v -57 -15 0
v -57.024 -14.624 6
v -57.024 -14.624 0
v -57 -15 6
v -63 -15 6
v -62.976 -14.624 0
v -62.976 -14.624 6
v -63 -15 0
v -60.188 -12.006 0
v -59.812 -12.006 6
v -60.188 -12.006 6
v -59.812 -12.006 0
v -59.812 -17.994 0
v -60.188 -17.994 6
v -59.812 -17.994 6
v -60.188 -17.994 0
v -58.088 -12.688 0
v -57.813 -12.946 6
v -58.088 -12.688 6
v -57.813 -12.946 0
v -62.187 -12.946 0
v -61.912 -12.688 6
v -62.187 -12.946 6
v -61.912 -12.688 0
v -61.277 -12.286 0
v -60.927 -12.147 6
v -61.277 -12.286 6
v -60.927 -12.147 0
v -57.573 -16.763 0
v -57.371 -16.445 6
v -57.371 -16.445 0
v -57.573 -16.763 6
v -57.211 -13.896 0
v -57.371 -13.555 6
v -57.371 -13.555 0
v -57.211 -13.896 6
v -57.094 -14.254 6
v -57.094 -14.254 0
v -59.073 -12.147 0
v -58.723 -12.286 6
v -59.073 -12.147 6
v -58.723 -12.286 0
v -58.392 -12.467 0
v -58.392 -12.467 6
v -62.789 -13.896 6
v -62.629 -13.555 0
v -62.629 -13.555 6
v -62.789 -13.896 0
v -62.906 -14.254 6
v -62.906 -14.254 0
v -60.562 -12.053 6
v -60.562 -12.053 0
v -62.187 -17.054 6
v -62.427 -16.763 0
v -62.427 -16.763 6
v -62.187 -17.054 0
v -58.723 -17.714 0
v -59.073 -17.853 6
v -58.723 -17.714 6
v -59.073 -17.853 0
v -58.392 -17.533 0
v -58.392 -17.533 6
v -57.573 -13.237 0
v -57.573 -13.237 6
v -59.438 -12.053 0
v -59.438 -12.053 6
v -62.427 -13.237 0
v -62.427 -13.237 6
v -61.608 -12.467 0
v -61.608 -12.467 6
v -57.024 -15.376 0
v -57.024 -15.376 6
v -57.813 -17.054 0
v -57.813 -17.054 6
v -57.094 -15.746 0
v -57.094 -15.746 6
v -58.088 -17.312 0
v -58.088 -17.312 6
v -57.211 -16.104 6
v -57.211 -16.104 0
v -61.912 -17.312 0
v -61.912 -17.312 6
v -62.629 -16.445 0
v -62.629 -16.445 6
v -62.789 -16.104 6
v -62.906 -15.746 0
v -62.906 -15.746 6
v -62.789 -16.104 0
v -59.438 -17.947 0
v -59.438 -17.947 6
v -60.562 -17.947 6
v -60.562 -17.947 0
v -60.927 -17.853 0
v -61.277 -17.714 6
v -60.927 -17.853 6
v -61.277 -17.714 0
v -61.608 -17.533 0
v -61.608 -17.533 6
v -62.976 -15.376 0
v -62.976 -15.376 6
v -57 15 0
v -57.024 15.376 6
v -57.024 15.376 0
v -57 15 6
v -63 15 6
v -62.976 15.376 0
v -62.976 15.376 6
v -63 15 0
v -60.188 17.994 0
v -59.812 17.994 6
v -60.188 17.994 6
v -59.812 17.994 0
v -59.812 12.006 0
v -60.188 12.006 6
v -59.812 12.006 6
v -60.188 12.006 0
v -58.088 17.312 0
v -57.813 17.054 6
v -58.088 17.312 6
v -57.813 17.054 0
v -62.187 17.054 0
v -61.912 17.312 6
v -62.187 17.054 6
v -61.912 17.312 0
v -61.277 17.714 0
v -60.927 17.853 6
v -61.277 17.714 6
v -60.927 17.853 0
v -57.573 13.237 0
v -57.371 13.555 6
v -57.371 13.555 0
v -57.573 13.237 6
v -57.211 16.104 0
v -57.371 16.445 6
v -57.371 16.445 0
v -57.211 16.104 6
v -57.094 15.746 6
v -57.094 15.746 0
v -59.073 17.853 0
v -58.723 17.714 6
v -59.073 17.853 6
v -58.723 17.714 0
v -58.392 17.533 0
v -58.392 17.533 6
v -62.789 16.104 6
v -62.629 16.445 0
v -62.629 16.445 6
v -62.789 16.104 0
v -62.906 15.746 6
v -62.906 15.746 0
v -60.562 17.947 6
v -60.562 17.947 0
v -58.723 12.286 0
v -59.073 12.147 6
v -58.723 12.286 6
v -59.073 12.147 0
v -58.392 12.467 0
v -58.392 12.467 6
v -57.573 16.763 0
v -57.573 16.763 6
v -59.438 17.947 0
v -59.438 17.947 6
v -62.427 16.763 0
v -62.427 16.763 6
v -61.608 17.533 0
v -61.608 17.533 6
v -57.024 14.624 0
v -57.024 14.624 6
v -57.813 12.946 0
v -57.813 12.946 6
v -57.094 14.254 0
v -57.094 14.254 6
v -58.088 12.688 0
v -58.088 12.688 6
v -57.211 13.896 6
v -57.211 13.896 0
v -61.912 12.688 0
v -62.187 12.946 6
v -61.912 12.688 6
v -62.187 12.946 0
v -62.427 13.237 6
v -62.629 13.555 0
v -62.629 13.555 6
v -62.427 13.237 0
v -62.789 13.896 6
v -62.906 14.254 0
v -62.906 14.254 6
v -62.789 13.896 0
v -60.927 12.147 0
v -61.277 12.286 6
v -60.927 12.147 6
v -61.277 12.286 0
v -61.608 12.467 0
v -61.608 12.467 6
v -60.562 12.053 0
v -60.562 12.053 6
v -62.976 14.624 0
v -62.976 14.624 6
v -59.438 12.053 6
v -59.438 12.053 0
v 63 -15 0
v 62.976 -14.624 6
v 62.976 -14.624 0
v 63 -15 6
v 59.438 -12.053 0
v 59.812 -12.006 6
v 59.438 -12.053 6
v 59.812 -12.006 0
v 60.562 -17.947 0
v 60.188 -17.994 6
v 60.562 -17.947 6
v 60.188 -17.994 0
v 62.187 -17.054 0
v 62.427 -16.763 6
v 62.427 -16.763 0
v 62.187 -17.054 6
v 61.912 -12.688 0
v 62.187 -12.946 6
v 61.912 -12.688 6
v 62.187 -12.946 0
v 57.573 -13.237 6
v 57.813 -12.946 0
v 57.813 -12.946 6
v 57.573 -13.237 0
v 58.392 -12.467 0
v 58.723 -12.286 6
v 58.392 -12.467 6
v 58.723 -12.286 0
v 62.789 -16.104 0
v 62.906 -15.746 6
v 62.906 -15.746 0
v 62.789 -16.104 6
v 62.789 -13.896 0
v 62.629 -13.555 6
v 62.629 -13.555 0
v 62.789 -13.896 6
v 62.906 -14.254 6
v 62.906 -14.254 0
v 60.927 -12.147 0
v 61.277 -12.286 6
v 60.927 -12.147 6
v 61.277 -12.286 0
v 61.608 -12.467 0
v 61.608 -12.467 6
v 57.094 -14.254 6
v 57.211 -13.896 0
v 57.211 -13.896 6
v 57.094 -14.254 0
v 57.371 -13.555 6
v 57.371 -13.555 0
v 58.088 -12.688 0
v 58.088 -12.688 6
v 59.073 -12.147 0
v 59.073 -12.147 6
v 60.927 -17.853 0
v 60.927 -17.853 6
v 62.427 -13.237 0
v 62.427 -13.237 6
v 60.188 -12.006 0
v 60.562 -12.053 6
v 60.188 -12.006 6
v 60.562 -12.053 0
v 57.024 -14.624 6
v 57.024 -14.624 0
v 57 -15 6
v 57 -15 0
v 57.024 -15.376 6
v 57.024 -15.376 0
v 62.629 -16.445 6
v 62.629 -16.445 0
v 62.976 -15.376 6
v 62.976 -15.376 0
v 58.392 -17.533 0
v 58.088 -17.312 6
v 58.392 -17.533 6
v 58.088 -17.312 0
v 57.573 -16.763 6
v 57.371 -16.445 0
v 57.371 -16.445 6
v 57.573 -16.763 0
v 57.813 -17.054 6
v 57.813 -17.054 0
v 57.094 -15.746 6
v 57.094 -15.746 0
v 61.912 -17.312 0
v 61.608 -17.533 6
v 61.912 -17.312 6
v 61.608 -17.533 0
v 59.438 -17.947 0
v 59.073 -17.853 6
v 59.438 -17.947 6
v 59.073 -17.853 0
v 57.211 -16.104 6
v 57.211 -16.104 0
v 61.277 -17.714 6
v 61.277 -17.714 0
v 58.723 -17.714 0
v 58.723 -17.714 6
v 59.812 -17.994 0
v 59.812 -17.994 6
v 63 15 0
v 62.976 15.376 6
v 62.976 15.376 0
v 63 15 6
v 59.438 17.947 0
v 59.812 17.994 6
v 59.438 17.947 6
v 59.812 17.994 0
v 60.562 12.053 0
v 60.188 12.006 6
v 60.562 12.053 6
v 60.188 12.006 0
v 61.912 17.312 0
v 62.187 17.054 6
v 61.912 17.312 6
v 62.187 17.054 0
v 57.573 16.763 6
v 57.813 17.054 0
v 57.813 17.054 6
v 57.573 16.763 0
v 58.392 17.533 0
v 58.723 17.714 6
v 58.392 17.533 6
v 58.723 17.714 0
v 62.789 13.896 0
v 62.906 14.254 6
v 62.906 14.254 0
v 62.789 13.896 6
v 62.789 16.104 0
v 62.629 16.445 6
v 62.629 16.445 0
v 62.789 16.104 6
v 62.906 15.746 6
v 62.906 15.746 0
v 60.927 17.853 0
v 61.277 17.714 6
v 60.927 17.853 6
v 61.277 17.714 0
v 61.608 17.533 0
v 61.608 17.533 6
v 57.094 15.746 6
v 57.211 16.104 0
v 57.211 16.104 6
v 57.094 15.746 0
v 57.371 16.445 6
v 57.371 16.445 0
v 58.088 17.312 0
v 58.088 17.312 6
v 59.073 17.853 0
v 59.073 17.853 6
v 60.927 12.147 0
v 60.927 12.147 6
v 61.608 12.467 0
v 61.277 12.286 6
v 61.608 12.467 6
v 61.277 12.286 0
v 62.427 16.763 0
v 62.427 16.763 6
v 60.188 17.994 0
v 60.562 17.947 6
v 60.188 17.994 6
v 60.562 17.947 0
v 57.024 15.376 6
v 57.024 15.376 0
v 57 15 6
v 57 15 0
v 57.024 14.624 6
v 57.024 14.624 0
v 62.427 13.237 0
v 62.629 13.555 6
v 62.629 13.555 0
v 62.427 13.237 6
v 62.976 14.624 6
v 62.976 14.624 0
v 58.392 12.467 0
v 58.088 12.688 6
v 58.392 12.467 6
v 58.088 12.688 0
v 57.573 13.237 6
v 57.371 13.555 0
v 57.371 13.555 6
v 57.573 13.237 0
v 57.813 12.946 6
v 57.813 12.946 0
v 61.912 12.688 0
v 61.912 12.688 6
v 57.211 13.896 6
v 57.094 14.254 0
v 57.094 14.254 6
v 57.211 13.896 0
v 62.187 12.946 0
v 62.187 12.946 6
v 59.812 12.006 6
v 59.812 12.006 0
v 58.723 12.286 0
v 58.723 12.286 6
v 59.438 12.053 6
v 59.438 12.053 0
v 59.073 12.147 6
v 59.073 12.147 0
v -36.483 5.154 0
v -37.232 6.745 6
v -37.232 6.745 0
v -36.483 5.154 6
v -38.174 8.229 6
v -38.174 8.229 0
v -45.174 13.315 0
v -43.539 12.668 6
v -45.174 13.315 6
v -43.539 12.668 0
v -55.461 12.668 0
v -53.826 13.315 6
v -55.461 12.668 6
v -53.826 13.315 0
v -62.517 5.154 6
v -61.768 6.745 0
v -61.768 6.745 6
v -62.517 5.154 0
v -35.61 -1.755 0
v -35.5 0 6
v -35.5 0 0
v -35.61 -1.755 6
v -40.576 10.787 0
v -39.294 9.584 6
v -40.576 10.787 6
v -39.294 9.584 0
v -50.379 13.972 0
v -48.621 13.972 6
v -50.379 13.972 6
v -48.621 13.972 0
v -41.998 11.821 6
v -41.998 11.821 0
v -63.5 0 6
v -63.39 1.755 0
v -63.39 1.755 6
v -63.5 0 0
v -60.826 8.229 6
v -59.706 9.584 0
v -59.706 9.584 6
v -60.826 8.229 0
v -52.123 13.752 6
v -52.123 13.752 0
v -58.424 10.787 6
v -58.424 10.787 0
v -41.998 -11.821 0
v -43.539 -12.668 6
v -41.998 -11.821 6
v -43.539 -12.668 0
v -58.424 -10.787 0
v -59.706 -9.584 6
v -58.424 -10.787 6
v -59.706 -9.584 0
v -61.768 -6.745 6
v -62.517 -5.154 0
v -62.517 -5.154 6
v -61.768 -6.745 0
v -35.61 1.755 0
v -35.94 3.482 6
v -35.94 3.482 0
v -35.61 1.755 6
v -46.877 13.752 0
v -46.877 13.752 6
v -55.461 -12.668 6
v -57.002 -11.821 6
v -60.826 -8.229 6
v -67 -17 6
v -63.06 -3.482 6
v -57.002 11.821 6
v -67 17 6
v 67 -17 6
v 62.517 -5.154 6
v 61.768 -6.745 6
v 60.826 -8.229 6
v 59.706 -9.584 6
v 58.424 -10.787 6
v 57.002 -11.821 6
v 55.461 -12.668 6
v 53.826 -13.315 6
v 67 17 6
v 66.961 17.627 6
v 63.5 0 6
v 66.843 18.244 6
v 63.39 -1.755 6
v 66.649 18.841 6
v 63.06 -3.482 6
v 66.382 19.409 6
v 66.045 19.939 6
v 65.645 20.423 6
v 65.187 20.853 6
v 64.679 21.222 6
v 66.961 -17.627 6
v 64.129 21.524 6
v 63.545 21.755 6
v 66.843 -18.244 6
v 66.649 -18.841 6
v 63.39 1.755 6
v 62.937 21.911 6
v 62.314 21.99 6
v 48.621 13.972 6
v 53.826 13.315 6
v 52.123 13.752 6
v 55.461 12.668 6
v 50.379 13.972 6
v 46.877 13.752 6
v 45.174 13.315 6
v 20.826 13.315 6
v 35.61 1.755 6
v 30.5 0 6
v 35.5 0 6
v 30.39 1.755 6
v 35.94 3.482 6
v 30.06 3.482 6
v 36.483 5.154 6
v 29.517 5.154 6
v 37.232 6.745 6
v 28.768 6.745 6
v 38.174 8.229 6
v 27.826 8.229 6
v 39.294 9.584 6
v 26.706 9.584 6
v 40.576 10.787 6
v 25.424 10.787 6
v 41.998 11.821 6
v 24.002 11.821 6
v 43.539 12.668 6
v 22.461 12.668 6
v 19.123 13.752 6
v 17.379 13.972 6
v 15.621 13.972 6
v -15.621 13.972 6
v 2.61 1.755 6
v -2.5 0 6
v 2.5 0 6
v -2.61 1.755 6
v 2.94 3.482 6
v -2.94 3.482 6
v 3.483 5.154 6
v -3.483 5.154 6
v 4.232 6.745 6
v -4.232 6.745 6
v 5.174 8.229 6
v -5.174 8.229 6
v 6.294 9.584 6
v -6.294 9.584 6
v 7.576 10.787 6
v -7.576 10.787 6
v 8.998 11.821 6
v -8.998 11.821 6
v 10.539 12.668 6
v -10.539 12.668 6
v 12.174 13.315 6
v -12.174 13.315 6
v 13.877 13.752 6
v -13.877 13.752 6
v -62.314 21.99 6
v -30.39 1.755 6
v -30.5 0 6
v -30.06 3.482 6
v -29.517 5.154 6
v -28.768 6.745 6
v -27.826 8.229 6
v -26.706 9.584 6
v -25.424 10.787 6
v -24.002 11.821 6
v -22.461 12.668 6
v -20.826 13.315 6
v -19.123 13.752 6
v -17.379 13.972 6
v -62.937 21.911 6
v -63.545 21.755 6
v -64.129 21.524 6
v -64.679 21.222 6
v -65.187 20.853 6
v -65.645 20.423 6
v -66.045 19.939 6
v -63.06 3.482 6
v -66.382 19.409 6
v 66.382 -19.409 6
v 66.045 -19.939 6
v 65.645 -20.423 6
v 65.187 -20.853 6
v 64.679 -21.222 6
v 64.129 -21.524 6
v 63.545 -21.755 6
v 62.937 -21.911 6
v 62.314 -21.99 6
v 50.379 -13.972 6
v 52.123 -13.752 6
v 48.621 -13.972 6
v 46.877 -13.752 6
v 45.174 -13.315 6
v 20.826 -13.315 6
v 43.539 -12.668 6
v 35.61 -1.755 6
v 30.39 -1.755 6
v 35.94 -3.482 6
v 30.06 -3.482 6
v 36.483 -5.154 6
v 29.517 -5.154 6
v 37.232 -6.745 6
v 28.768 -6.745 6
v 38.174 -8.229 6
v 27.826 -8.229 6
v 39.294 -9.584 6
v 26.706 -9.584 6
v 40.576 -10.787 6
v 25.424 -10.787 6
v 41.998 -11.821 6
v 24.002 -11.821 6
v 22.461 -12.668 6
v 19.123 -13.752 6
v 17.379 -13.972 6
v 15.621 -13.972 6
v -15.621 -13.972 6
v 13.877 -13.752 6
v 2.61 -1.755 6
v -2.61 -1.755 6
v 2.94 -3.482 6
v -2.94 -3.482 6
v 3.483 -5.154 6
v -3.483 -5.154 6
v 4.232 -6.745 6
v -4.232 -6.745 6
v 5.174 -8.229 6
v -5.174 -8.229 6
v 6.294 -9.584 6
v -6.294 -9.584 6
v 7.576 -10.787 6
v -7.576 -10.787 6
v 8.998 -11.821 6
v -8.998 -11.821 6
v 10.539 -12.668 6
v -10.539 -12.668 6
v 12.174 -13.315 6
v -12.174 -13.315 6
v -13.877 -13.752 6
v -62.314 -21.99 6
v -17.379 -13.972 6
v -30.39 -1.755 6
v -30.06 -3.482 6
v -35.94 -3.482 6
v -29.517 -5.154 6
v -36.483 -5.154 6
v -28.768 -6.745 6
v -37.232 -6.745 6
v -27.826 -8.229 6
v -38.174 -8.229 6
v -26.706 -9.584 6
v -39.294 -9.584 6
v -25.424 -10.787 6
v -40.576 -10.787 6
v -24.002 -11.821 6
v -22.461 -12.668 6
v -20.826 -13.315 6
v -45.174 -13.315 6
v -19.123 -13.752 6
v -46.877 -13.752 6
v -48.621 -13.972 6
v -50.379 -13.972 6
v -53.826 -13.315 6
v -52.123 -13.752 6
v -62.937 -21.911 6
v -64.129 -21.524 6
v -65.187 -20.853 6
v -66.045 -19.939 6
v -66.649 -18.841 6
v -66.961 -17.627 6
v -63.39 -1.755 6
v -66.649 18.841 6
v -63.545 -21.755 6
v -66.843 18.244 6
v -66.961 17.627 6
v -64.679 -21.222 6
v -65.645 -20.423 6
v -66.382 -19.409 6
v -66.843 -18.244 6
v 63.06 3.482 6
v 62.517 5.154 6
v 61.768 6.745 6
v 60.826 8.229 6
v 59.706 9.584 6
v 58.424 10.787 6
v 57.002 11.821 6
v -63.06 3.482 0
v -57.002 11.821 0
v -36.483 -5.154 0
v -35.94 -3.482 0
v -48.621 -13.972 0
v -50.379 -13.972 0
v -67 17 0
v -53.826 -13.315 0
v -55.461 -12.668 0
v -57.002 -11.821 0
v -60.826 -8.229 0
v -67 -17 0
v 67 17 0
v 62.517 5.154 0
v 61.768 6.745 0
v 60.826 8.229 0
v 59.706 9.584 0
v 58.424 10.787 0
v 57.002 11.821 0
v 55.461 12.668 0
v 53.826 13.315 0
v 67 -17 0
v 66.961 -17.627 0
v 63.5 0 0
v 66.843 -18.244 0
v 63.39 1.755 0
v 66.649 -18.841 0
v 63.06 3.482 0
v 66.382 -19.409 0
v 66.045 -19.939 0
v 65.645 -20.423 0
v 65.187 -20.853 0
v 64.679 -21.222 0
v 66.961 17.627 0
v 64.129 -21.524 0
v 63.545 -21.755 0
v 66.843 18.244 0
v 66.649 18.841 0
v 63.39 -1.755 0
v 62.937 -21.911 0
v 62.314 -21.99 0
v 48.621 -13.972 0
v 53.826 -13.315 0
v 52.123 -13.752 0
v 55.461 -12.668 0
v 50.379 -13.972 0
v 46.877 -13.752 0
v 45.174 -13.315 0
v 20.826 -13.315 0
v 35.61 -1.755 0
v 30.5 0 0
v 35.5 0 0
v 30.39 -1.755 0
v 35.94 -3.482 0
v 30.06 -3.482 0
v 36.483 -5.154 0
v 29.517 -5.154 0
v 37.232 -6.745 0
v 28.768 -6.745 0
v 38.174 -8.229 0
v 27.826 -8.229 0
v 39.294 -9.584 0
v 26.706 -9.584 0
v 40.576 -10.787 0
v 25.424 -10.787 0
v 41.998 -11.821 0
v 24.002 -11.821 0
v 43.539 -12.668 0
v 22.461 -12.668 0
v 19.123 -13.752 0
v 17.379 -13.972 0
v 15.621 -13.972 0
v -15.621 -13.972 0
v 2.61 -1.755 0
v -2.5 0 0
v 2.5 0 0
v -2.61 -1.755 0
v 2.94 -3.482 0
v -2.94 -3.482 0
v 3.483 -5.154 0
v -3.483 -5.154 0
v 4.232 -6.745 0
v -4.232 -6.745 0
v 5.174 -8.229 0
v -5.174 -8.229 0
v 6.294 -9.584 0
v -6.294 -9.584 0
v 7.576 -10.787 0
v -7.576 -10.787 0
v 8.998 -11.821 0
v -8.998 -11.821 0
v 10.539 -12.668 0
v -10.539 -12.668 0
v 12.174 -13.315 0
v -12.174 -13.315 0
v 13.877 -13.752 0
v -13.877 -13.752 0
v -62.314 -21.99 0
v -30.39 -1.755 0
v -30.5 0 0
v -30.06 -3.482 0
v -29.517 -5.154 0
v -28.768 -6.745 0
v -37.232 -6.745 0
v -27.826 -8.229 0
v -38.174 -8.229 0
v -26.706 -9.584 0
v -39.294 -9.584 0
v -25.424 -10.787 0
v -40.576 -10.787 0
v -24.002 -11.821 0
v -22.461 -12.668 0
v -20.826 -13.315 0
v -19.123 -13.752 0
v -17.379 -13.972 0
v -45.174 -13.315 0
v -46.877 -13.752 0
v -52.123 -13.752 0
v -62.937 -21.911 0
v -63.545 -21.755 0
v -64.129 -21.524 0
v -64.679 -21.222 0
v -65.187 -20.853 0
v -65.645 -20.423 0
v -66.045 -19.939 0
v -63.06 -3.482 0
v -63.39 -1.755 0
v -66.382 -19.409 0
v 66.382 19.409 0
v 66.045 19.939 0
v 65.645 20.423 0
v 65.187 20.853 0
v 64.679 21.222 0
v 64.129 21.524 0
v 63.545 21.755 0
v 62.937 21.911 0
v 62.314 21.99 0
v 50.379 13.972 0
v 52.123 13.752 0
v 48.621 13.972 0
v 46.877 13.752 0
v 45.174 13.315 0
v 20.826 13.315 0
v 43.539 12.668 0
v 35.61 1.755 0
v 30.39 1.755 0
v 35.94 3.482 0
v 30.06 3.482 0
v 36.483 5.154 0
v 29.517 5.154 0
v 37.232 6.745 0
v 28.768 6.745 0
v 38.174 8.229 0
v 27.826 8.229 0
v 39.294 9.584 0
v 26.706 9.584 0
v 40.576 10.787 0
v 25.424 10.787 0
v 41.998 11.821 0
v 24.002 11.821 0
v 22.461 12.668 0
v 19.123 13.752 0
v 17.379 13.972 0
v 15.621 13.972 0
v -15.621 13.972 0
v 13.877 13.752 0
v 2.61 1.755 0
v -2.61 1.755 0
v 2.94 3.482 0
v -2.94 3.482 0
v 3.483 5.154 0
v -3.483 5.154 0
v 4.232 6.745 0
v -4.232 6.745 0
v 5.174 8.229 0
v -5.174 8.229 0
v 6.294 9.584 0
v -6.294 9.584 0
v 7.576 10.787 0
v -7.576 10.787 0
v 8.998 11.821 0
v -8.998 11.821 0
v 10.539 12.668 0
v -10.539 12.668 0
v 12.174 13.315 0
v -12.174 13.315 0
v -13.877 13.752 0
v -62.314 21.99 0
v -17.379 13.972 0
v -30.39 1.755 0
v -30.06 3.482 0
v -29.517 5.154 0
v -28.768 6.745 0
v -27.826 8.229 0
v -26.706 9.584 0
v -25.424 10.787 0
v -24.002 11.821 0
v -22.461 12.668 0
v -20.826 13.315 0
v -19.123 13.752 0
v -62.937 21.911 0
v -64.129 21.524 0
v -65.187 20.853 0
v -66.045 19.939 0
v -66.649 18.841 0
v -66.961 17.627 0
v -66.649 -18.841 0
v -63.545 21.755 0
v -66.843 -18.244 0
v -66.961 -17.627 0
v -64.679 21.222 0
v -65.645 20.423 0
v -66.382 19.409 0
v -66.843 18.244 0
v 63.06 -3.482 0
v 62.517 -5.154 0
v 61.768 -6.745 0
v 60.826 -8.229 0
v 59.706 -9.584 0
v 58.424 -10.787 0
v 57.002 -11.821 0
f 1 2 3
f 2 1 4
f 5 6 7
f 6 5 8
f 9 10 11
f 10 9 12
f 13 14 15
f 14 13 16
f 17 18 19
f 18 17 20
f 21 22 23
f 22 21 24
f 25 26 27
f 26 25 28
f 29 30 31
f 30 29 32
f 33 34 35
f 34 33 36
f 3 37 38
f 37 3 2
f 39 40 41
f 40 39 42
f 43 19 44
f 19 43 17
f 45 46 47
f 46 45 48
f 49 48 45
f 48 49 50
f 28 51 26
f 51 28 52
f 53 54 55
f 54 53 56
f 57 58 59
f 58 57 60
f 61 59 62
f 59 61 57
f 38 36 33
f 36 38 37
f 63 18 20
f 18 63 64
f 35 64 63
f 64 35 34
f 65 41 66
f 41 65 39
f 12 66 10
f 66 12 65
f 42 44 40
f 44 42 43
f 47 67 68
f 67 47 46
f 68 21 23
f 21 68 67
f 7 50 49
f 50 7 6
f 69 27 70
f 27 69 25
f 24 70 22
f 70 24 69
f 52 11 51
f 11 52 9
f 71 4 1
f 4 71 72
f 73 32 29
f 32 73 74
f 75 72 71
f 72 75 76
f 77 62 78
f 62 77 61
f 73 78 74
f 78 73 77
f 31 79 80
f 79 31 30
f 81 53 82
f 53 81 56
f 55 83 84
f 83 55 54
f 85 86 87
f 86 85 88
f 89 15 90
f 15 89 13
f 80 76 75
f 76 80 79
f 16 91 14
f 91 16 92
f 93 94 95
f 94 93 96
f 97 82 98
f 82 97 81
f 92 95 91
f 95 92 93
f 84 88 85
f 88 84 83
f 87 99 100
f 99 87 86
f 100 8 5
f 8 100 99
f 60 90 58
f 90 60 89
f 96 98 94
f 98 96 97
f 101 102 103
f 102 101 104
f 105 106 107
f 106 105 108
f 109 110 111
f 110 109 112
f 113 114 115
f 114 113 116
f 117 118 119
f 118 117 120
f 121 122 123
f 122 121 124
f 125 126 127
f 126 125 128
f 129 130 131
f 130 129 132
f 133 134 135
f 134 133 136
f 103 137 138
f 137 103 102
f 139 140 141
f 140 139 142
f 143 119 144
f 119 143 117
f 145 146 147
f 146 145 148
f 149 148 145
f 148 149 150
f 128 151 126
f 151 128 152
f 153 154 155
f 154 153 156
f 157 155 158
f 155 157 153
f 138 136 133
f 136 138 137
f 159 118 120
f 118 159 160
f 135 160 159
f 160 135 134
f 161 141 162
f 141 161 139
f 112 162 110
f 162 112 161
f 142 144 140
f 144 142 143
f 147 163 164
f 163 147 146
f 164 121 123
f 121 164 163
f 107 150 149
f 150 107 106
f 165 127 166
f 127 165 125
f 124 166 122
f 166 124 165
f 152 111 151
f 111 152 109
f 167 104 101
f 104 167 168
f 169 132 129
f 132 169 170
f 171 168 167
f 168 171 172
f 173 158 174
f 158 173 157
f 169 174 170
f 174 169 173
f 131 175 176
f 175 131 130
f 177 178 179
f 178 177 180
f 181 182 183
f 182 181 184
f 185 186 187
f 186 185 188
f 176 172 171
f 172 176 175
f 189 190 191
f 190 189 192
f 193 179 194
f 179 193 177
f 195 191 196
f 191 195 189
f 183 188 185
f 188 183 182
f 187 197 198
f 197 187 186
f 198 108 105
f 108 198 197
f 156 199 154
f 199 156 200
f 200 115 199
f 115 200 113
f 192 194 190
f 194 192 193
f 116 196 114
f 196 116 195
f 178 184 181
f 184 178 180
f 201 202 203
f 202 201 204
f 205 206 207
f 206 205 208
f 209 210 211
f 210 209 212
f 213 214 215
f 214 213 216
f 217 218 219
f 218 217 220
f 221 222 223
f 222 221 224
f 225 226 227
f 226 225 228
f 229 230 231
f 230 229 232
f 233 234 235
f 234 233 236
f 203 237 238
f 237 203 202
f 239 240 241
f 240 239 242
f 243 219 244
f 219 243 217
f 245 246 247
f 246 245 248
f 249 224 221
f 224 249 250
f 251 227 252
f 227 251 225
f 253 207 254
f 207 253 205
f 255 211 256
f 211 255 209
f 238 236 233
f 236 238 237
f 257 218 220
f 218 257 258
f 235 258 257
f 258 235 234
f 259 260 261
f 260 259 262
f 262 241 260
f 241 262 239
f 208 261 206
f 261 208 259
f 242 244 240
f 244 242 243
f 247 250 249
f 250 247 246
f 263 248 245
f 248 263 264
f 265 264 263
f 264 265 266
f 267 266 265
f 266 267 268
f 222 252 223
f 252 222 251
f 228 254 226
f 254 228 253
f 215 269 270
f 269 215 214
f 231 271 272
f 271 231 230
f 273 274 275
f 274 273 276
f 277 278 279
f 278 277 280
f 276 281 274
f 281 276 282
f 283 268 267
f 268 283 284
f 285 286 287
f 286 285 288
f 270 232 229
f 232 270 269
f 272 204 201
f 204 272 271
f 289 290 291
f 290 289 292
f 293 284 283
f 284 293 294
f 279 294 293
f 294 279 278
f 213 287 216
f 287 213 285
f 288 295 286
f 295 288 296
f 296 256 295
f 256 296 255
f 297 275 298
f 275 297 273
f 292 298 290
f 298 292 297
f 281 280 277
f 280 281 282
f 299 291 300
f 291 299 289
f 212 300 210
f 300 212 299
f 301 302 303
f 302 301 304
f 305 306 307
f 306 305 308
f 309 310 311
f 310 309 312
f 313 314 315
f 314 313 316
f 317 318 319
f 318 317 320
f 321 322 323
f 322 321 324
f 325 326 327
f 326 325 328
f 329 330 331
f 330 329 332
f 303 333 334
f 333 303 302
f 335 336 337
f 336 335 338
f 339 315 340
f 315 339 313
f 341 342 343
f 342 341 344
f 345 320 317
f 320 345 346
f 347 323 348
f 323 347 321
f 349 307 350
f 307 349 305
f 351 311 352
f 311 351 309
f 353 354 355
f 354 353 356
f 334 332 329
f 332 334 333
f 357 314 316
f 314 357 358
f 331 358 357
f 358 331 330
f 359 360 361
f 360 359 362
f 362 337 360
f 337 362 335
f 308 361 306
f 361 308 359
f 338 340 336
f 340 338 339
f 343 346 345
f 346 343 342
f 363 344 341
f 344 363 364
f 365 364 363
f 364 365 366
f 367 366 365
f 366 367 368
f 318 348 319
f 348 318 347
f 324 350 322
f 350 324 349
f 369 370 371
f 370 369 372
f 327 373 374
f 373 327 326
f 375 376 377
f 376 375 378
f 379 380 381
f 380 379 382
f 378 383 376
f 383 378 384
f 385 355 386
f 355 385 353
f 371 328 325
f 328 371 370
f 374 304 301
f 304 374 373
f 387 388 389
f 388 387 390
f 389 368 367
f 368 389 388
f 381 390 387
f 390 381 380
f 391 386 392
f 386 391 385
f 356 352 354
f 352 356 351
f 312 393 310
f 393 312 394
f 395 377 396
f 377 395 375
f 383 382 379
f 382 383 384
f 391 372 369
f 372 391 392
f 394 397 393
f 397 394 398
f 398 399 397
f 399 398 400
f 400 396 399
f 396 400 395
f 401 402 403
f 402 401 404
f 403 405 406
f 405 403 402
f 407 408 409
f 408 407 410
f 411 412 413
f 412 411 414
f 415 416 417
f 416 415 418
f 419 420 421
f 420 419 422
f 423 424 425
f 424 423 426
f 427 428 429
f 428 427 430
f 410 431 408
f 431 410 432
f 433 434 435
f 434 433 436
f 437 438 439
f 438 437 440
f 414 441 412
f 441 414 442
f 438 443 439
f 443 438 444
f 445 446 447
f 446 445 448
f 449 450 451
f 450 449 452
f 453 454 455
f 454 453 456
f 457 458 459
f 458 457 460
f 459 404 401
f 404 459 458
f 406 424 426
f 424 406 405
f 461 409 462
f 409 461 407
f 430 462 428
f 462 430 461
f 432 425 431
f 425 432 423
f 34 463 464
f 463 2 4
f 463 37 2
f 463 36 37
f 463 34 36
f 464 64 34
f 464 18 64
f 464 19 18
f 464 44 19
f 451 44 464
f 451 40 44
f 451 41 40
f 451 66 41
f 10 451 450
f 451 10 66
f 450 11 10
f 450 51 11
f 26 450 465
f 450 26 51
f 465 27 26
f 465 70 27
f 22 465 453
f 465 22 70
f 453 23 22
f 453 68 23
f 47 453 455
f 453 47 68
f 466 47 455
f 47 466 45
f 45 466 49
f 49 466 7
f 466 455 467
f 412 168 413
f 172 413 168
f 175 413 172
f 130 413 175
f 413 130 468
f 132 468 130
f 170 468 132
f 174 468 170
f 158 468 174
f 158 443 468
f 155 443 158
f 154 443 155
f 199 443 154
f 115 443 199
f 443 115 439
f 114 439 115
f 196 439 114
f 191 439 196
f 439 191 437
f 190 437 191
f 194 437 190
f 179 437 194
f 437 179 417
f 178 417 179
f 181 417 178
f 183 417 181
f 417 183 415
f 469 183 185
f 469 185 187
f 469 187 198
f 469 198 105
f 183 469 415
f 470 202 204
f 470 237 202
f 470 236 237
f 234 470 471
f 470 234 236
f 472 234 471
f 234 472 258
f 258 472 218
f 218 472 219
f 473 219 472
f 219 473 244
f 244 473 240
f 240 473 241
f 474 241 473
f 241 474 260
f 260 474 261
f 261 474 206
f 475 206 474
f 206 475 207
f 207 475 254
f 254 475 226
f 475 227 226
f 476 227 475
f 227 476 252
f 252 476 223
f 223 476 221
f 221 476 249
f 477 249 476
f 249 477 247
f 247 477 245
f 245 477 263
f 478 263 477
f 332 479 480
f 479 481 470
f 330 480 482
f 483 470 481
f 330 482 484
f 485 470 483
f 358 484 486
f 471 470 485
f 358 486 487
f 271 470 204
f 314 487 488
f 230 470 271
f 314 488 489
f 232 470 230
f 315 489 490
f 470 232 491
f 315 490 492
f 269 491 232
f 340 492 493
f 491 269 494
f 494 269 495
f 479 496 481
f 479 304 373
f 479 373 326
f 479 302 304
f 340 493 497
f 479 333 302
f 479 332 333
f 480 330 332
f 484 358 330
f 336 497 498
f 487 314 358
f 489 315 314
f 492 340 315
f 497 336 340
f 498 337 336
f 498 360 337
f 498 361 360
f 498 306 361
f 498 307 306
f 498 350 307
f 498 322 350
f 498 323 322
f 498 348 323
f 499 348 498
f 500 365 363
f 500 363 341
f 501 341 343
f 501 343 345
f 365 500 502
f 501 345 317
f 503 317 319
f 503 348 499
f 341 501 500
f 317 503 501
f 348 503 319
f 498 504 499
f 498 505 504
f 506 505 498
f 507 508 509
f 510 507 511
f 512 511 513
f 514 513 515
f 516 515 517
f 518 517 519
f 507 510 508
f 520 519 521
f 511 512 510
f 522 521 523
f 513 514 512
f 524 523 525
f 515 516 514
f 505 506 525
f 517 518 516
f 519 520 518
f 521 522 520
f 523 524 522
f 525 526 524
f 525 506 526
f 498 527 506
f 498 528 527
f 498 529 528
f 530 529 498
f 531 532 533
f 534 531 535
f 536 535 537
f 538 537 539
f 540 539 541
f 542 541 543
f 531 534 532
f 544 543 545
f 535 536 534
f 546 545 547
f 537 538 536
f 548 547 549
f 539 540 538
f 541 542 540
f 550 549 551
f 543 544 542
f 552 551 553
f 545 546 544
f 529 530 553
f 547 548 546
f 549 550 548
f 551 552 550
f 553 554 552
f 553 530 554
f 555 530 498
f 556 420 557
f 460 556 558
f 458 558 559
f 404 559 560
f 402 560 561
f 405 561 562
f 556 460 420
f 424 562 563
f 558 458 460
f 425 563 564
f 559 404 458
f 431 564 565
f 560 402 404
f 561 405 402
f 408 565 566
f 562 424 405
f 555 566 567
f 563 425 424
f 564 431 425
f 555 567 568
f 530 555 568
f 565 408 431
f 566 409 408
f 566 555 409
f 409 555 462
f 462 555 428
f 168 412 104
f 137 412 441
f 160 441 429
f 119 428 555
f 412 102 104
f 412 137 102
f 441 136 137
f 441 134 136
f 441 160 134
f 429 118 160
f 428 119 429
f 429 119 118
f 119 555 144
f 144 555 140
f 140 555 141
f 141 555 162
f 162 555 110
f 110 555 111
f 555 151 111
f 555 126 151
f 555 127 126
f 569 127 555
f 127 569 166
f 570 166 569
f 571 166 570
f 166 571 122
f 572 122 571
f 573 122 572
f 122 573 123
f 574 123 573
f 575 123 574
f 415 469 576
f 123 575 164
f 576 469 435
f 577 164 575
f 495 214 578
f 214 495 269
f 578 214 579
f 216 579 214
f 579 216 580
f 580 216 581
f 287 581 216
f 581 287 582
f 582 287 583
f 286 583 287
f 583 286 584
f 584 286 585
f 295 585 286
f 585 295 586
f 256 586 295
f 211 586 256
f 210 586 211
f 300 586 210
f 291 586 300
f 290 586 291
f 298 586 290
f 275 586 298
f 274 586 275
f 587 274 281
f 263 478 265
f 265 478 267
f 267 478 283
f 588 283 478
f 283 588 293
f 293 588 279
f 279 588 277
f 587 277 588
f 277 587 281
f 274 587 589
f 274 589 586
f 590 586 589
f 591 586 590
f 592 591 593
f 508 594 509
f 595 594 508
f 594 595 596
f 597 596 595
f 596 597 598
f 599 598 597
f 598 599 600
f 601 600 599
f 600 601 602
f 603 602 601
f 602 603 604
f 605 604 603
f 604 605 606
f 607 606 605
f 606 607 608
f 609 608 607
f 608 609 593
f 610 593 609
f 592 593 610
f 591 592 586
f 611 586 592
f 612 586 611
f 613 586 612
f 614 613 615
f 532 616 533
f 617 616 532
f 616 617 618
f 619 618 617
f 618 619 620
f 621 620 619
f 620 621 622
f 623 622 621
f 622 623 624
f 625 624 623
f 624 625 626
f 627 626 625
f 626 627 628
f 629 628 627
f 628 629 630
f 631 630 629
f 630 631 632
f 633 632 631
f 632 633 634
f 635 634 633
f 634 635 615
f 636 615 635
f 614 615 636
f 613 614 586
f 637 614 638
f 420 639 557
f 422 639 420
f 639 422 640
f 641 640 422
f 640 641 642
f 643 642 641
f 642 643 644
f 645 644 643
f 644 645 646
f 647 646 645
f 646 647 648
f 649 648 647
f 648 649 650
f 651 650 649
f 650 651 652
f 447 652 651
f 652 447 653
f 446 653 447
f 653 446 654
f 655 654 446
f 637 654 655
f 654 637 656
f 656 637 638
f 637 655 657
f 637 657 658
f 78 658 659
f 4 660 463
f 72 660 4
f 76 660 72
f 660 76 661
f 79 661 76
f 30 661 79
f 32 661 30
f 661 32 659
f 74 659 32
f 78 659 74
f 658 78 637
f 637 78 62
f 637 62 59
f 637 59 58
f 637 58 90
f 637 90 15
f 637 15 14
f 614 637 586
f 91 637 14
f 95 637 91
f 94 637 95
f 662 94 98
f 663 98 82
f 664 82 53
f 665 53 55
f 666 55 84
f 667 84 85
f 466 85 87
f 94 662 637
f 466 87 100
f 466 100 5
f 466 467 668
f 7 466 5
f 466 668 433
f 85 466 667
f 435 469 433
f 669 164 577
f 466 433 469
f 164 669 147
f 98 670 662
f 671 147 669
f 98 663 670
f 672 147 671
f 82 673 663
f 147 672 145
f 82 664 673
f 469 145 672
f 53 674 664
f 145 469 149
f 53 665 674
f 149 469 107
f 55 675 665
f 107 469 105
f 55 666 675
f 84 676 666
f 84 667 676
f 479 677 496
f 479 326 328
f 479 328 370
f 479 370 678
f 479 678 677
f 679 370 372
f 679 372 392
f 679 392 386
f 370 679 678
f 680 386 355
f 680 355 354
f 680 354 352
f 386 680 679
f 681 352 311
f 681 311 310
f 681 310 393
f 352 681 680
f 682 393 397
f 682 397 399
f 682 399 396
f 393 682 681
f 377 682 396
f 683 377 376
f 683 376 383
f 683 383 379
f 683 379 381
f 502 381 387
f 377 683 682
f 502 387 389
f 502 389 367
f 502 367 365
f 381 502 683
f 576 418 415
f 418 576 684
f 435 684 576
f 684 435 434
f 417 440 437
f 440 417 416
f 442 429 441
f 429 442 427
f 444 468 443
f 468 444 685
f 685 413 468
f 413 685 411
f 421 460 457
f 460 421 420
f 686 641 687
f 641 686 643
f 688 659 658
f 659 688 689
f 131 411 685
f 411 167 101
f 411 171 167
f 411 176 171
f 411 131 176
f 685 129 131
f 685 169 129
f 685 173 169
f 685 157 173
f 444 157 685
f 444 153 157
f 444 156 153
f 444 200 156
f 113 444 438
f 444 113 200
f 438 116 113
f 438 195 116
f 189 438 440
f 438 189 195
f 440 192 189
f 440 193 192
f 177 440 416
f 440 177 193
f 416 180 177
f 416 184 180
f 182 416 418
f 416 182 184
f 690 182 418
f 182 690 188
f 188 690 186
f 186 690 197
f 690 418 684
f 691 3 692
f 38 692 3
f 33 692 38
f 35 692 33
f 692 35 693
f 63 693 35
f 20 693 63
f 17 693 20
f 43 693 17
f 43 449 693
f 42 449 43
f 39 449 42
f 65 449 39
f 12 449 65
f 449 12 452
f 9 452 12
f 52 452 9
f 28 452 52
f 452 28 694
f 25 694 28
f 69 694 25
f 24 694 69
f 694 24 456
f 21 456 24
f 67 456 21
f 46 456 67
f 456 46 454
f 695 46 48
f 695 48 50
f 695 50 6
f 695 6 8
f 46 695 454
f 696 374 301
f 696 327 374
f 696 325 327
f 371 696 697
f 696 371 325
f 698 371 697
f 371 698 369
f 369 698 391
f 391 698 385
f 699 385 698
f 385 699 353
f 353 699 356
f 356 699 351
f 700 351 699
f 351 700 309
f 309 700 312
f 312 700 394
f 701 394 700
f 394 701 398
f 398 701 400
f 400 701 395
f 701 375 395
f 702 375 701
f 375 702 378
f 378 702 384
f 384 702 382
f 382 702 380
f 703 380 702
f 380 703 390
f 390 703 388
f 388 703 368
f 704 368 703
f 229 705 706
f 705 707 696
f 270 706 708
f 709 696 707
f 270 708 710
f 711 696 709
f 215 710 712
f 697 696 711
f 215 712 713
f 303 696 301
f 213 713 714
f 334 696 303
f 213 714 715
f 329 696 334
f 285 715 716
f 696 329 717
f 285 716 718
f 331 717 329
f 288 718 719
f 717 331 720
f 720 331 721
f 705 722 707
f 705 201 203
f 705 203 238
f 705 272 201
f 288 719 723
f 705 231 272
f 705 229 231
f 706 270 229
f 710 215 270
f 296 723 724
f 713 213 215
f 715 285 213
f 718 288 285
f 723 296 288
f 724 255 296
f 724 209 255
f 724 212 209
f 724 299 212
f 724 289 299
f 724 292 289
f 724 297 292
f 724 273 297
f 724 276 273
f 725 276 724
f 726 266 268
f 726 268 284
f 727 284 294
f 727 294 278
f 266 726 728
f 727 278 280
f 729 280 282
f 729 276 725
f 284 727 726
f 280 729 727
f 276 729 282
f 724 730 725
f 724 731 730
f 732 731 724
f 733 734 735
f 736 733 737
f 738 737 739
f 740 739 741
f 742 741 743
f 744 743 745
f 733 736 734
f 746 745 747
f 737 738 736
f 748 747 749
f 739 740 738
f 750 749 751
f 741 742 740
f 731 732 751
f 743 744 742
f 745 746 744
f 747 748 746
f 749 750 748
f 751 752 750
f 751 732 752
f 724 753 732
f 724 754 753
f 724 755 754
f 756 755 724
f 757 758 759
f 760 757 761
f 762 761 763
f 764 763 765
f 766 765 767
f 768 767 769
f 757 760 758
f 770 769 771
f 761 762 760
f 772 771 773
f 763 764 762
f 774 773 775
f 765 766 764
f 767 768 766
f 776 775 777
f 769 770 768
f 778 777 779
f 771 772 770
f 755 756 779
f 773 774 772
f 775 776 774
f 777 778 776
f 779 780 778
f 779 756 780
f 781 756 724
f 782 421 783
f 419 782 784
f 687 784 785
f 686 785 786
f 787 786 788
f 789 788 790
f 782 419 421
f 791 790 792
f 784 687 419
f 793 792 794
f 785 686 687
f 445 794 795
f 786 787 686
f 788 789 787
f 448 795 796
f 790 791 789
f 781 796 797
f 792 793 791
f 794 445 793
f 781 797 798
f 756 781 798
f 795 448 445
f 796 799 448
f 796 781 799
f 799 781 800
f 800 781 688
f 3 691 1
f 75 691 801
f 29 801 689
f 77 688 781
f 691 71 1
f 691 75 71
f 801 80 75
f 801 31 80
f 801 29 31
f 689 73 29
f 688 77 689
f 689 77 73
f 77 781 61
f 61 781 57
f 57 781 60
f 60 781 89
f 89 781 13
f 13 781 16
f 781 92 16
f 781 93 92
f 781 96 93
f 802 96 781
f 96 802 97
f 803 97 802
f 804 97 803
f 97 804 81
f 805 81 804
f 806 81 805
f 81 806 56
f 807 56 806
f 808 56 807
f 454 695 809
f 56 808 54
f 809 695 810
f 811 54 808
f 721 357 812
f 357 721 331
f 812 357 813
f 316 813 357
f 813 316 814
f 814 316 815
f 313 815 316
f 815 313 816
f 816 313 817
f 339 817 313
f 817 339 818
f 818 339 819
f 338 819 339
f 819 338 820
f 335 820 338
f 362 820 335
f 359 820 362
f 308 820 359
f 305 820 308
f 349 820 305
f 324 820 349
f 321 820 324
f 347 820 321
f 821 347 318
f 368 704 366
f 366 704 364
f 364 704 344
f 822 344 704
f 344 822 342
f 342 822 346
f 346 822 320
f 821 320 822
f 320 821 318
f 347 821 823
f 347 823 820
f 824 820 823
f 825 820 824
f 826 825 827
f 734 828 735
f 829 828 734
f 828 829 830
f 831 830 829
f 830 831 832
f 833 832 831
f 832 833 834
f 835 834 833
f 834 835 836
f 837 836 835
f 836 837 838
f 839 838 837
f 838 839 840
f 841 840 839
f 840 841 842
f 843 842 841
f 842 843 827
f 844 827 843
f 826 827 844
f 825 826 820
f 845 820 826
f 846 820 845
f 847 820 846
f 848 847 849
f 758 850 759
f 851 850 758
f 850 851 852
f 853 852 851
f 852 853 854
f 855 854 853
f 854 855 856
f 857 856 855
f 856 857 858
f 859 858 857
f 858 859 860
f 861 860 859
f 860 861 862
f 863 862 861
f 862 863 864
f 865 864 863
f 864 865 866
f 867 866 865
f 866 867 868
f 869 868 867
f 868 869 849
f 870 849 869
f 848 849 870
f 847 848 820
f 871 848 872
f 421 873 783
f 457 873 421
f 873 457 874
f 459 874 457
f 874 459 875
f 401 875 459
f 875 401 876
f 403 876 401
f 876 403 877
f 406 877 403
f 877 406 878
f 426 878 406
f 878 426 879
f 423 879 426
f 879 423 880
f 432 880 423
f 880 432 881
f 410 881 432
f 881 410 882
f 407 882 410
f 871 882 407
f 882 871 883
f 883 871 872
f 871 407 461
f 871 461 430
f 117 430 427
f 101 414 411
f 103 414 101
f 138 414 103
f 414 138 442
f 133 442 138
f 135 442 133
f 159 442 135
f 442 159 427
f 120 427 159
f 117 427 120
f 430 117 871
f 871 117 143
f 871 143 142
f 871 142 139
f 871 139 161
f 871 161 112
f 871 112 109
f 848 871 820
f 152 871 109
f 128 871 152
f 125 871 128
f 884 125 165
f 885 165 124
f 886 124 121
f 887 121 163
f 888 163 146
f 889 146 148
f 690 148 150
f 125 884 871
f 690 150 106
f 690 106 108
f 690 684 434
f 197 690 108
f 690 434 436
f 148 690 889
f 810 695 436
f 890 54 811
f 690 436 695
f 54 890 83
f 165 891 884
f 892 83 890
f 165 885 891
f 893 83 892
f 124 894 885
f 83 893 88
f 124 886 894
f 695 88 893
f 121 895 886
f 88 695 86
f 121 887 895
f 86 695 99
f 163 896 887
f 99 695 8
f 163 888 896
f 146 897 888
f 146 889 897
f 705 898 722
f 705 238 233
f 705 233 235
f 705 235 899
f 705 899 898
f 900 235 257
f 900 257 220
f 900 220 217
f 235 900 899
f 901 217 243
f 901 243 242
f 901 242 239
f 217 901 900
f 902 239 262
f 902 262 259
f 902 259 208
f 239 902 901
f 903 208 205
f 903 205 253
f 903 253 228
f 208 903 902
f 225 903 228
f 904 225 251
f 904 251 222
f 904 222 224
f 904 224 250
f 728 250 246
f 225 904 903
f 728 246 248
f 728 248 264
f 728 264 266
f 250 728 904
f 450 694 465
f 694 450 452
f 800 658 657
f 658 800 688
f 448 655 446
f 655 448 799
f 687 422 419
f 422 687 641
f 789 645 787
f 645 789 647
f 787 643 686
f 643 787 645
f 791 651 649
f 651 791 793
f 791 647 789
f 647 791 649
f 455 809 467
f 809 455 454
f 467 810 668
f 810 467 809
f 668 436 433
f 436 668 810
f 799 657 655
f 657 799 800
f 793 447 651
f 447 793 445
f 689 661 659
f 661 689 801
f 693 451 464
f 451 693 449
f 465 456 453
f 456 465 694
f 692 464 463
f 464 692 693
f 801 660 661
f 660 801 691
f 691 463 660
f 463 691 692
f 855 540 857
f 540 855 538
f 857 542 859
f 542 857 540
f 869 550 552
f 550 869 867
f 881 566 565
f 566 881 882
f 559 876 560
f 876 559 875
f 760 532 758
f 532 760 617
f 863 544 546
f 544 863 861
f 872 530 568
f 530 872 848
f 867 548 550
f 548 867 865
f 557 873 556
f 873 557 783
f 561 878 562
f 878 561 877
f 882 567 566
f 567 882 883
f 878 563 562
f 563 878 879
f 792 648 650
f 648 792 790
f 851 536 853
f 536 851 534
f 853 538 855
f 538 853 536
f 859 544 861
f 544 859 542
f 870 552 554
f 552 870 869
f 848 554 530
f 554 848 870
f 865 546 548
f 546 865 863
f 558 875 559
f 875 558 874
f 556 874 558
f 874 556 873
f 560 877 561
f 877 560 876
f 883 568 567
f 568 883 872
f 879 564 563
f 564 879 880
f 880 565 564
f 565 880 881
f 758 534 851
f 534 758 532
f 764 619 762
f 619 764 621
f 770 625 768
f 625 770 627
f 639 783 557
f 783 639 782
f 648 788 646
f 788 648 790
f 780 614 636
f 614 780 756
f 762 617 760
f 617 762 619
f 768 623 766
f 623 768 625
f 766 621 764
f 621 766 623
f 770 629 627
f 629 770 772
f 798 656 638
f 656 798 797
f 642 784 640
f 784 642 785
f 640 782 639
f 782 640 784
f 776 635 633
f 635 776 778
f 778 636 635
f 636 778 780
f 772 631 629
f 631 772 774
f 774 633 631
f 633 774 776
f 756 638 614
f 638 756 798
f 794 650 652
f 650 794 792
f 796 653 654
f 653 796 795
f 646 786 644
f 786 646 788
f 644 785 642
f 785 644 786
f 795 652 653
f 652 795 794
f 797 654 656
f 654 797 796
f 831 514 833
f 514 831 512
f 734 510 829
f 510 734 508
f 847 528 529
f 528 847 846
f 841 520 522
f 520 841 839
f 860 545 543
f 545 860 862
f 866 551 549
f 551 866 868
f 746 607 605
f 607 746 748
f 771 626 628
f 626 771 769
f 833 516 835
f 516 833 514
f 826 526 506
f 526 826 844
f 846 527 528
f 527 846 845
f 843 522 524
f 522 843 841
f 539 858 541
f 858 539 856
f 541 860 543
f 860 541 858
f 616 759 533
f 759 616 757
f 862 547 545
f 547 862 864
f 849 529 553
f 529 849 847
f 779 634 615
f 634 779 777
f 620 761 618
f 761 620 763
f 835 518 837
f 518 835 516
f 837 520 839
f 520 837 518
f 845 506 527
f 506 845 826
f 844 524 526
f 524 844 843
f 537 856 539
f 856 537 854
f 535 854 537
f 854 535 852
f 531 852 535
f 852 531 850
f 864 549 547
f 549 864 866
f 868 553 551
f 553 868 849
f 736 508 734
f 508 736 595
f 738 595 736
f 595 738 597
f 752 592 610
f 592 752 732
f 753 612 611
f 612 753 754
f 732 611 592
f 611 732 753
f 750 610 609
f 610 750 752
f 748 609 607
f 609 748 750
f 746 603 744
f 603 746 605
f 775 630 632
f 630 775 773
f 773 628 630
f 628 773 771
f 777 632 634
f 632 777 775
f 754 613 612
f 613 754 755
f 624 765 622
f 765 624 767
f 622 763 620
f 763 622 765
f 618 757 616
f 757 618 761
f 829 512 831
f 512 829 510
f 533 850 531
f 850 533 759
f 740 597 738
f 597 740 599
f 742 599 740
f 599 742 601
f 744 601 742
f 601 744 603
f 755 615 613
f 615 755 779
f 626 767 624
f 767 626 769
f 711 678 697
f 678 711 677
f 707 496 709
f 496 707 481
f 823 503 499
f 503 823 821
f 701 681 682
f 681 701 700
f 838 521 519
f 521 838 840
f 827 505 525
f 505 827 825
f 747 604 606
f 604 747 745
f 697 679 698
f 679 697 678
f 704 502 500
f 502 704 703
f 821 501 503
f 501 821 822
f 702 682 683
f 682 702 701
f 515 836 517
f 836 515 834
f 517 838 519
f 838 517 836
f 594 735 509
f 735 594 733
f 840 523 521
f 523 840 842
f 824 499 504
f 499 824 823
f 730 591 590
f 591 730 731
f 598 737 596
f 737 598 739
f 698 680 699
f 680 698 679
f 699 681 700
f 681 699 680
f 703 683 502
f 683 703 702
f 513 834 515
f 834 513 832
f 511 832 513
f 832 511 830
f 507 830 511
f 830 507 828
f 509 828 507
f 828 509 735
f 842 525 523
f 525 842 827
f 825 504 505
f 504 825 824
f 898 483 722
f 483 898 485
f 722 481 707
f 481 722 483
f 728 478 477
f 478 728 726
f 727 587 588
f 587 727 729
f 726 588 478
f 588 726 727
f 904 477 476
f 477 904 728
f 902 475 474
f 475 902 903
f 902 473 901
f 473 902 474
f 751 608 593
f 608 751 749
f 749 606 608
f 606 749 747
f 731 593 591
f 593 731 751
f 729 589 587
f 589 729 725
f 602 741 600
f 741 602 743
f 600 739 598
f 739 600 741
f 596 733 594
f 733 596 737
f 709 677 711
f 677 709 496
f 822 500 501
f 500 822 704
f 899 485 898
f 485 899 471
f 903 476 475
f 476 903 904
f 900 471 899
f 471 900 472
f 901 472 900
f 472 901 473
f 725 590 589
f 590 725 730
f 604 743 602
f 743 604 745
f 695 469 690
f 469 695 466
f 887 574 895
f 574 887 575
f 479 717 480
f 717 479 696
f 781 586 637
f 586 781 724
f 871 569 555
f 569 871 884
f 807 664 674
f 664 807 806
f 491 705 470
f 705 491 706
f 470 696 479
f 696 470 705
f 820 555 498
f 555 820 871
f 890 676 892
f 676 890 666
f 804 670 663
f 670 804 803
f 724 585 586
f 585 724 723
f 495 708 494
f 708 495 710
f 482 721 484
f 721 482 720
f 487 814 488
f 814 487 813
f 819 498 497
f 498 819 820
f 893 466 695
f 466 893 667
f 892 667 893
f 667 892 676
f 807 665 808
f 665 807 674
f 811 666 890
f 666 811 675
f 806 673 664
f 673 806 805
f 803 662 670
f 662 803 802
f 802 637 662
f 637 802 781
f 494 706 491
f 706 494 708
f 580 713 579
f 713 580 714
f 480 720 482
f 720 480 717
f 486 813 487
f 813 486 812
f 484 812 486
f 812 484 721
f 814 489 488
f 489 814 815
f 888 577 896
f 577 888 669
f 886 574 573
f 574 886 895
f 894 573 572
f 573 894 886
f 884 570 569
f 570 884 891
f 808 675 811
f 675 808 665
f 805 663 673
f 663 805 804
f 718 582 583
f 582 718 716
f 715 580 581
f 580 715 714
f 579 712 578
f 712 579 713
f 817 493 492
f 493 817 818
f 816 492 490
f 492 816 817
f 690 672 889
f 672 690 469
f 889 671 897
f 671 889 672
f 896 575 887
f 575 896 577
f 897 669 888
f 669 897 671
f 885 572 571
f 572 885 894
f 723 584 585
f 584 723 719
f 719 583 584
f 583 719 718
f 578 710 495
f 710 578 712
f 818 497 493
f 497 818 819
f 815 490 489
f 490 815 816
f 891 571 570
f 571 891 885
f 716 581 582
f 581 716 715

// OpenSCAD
$fn = 50;


difference() {
	union() {
		hull() {
			translate(v = [-62.0000000000, 17.0000000000, 0]) {
				cylinder(h = 6, r = 5);
			}
			translate(v = [62.0000000000, 17.0000000000, 0]) {
				cylinder(h = 6, r = 5);
			}
			translate(v = [-62.0000000000, -17.0000000000, 0]) {
				cylinder(h = 6, r = 5);
			}
			translate(v = [62.0000000000, -17.0000000000, 0]) {
				cylinder(h = 6, r = 5);
			}
		}
	}
	union() {
		#translate(v = [-60.0000000000, -15.0000000000, -100.0000000000]) {
			cylinder(h = 200, r = 3.0000000000);
		}
		#translate(v = [-60.0000000000, 15.0000000000, -100.0000000000]) {
			cylinder(h = 200, r = 3.0000000000);
		}
		#translate(v = [60.0000000000, -15.0000000000, -100.0000000000]) {
			cylinder(h = 200, r = 3.0000000000);
		}
		#translate(v = [60.0000000000, 15.0000000000, -100.0000000000]) {
			cylinder(h = 200, r = 3.0000000000);
		}
		#translate(v = [-49.5000000000, 0, 0]) {
			cylinder(h = 6, r = 14.0000000000);
		}
		#translate(v = [-16.5000000000, 0, 0]) {
			cylinder(h = 6, r = 14.0000000000);
		}
		#translate(v = [16.5000000000, 0, 0]) {
			cylinder(h = 6, r = 14.0000000000);
		}
		#translate(v = [49.5000000000, 0, 0]) {
			cylinder(h = 6, r = 14.0000000000);
		}
	}
}
